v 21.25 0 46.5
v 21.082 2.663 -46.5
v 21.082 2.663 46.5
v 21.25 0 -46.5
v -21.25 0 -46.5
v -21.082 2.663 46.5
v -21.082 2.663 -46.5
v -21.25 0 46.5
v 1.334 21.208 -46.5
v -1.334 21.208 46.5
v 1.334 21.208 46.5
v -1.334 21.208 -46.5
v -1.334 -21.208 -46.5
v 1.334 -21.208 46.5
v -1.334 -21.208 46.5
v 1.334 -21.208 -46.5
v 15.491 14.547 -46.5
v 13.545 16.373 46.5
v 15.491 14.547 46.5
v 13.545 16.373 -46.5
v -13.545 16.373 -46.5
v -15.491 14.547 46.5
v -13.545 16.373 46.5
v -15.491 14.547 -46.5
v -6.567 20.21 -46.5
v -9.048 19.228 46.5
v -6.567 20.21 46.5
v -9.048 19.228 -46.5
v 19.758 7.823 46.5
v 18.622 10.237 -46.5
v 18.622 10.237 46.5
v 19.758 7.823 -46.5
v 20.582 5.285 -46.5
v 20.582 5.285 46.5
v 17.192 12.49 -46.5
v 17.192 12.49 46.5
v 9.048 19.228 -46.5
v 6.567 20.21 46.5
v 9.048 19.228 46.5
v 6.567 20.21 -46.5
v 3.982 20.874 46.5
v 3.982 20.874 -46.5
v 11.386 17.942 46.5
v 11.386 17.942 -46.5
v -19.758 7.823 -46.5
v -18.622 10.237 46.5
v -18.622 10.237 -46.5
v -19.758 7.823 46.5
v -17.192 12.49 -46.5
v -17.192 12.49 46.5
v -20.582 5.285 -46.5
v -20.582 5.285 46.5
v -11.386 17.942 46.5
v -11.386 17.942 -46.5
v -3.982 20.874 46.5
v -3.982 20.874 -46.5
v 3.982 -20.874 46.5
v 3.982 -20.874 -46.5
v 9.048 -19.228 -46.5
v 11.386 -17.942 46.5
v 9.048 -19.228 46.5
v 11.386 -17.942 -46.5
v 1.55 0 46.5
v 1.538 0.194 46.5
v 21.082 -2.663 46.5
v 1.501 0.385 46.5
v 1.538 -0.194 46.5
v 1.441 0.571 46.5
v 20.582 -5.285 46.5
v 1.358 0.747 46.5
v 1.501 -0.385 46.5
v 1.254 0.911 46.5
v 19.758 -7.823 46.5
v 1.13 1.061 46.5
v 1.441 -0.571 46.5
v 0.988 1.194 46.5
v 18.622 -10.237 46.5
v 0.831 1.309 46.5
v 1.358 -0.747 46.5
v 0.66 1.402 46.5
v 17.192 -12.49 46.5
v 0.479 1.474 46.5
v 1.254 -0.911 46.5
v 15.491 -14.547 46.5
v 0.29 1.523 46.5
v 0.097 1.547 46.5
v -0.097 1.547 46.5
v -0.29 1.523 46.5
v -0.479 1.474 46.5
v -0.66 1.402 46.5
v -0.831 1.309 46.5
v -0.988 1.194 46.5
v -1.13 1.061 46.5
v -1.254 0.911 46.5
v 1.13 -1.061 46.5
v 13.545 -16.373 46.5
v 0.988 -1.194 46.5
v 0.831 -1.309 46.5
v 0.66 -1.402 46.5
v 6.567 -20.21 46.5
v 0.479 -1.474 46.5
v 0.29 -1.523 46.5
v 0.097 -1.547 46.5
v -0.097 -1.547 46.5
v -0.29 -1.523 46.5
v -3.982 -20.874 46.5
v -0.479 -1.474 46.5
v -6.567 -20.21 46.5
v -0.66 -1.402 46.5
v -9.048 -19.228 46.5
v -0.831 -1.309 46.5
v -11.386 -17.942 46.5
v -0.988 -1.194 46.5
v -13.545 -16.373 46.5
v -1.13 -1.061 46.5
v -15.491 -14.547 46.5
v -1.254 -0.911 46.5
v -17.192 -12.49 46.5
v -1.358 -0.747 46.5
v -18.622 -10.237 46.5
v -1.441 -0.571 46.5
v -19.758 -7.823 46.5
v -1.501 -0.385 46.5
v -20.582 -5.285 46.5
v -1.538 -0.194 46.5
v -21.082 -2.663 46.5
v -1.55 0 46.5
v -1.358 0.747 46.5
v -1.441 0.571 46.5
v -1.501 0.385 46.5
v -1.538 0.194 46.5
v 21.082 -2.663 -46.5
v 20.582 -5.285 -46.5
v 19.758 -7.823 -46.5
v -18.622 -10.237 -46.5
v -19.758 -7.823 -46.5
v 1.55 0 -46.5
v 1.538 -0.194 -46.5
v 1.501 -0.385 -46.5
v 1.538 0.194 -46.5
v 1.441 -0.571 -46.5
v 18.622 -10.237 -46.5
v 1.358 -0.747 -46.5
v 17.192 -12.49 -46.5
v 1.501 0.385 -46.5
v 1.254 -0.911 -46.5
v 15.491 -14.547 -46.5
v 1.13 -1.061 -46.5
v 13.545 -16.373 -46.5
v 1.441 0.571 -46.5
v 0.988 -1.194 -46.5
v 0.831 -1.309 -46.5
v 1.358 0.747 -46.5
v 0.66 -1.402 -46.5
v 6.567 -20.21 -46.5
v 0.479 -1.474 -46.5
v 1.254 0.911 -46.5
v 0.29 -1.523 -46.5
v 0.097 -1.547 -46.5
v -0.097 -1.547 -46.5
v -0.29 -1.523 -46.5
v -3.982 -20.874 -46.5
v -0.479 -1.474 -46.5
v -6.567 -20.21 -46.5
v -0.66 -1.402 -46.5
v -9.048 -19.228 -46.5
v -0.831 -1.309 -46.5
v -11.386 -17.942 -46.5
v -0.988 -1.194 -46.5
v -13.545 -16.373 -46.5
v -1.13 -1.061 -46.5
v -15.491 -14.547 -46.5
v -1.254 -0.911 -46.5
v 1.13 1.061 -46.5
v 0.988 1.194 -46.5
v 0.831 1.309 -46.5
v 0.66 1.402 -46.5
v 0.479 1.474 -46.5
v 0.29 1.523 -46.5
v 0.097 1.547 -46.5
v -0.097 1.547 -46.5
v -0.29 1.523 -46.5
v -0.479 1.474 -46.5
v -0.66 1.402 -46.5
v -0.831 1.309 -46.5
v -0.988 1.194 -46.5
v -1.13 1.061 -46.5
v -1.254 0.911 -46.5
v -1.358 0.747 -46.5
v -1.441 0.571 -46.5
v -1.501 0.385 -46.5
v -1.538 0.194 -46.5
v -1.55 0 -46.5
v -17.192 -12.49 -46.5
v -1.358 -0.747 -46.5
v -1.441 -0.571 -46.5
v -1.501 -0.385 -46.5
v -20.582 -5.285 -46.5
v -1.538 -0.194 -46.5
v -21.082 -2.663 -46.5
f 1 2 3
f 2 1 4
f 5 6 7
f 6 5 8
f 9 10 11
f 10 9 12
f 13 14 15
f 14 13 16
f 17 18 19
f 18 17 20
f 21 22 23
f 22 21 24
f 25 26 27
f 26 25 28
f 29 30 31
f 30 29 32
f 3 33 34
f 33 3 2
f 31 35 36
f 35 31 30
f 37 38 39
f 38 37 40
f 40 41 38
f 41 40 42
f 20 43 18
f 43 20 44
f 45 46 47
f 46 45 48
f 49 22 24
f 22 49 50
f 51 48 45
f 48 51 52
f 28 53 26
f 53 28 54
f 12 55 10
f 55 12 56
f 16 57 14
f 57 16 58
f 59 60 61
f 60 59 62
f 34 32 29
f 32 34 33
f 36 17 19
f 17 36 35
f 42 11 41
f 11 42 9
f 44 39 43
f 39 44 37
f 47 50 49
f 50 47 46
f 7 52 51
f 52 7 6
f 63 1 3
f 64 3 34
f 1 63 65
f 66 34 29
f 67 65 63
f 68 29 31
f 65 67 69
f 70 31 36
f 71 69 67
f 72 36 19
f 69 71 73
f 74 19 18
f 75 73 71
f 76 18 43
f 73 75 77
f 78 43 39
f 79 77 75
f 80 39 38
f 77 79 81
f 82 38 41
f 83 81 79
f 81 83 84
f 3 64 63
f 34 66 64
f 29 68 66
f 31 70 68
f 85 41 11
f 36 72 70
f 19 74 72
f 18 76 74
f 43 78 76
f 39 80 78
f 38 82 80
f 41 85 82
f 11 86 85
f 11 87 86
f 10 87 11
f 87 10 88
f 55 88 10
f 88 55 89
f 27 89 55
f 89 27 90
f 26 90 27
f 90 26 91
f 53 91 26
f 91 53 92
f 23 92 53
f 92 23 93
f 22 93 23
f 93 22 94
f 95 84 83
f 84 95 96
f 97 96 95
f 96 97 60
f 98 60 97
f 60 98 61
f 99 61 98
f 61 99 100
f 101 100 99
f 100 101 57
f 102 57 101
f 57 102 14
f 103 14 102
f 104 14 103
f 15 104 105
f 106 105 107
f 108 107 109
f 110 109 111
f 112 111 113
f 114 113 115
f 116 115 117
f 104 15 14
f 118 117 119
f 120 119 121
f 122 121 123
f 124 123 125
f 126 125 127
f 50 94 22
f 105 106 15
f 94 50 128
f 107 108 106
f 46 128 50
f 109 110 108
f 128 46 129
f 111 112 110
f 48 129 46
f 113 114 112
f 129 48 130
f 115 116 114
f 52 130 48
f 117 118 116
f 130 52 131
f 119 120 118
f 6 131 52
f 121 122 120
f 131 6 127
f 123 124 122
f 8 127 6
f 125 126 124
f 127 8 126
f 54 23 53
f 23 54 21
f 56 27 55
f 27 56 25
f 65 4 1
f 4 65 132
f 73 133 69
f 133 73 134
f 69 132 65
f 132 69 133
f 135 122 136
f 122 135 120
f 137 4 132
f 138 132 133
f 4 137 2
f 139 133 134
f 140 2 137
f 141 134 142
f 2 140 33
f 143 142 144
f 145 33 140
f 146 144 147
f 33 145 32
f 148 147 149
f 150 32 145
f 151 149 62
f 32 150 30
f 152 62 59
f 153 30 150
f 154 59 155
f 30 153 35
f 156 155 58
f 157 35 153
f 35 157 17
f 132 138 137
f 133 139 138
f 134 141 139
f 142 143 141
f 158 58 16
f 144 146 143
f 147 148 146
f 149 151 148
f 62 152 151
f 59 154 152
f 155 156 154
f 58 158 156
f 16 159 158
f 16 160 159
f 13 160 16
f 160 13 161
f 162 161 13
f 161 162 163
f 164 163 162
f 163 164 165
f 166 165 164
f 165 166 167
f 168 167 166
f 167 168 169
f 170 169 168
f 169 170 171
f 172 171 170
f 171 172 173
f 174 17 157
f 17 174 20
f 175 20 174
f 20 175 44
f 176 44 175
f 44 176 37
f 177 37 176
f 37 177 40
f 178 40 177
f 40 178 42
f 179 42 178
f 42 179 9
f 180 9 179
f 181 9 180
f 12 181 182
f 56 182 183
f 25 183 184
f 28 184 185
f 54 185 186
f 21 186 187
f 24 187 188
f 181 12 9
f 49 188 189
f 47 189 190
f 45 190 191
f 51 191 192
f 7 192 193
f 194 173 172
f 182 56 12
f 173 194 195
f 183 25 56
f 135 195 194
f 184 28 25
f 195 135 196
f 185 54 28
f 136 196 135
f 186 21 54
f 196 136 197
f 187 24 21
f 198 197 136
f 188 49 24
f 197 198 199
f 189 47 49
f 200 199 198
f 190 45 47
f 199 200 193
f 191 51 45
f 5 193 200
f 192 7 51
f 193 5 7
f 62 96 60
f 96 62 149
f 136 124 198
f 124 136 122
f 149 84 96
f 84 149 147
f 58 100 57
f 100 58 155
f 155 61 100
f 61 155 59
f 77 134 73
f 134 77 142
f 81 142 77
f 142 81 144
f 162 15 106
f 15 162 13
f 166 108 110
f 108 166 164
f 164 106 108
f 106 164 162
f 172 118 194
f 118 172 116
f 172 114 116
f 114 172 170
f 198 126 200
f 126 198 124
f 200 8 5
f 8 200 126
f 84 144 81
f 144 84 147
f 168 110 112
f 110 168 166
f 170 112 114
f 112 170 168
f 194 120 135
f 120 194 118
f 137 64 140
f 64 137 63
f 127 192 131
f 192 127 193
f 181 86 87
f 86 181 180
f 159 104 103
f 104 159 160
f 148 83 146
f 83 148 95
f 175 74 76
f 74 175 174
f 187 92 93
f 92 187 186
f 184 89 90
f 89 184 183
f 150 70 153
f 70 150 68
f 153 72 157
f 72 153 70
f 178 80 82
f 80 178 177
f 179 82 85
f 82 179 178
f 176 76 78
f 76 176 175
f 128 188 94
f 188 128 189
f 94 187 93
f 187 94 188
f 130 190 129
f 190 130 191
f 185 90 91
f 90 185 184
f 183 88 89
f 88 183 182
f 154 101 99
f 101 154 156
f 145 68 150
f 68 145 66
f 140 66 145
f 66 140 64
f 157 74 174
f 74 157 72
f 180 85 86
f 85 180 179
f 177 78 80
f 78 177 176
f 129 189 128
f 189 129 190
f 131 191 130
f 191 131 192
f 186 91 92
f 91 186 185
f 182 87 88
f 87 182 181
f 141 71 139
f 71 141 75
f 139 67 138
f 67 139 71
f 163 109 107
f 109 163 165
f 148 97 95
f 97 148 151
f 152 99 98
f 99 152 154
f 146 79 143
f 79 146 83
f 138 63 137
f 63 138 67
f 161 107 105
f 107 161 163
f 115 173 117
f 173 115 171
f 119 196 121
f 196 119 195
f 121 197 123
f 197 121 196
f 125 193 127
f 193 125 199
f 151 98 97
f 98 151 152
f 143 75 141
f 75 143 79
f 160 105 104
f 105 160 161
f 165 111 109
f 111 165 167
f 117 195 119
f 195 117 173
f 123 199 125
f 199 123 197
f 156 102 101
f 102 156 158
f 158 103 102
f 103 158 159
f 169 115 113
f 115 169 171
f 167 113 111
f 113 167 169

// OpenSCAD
$fn = 50;


difference() {
	union() {
		translate(v = [0, 0, -46.5000000000]) {
			cylinder(h = 93, r = 21.2500000000);
		}
	}
	union() {
		translate(v = [0, 0, -100.0000000000]) {
			cylinder(h = 200, r = 1.5500000000);
		}
	}
}
